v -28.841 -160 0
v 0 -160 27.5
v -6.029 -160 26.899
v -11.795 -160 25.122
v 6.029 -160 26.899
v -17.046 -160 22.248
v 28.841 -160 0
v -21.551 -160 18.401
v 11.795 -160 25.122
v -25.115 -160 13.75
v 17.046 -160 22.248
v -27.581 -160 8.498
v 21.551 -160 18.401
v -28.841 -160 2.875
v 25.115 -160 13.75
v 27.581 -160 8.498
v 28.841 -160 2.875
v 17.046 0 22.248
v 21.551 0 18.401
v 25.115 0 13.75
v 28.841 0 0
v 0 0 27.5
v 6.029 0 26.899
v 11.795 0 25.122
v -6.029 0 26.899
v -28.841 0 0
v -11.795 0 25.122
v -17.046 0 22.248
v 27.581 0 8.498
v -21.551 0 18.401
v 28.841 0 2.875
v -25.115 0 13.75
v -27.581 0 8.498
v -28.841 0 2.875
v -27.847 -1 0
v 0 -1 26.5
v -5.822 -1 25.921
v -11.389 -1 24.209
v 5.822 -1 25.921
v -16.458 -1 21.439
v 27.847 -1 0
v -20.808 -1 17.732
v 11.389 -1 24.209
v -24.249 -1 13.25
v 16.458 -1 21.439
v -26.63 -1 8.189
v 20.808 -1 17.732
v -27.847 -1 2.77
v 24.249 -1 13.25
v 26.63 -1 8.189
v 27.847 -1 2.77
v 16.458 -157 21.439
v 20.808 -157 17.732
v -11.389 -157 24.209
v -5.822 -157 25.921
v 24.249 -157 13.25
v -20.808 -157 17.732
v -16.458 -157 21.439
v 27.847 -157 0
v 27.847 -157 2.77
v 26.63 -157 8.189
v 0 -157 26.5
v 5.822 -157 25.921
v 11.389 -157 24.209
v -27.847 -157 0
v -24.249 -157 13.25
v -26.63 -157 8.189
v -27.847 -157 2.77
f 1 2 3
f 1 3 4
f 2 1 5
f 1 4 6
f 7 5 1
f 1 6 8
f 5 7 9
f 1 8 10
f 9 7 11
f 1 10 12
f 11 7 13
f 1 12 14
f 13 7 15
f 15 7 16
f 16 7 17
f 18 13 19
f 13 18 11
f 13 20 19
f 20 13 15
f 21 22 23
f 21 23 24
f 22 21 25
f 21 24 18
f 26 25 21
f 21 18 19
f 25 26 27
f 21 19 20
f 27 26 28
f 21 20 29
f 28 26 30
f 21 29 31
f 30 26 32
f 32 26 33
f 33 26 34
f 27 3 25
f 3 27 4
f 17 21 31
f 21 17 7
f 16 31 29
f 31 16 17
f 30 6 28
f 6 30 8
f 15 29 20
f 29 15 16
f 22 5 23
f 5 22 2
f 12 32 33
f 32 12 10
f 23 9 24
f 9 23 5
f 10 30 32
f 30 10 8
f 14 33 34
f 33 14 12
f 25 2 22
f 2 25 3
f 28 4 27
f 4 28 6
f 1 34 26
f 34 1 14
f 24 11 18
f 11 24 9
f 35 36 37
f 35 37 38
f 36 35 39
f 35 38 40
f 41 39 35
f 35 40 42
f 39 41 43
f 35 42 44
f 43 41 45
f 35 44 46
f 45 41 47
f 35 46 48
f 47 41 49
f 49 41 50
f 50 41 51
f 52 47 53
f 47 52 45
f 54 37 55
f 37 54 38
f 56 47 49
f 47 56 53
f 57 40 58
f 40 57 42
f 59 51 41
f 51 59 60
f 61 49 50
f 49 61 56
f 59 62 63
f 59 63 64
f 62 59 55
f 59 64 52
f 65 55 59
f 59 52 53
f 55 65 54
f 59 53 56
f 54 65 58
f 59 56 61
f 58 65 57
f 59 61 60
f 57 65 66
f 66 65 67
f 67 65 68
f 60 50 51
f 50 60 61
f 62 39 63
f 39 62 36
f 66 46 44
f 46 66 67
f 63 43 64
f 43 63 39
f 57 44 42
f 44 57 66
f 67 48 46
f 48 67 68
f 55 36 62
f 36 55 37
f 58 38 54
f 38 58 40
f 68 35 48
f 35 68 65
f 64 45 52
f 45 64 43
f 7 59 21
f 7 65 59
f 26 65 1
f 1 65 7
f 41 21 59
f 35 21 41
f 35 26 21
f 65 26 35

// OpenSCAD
X1=55/2;
X2=58/2;
H=160;
W=1;

module oval(w,h, height, center = false) {
 scale([1, h/w, 1]) cylinder(h=height, r=w, center=center);
}

rotate([90,90,0])
difference() {
    difference() {
        oval(X1,X2,H);
        translate([0,0,W]) {
            oval(X1-W,X2-W,H-2*2);
        }
    }
    translate([0,-X2,0])
    #cube([2*X2,2*X2,H]);
}
